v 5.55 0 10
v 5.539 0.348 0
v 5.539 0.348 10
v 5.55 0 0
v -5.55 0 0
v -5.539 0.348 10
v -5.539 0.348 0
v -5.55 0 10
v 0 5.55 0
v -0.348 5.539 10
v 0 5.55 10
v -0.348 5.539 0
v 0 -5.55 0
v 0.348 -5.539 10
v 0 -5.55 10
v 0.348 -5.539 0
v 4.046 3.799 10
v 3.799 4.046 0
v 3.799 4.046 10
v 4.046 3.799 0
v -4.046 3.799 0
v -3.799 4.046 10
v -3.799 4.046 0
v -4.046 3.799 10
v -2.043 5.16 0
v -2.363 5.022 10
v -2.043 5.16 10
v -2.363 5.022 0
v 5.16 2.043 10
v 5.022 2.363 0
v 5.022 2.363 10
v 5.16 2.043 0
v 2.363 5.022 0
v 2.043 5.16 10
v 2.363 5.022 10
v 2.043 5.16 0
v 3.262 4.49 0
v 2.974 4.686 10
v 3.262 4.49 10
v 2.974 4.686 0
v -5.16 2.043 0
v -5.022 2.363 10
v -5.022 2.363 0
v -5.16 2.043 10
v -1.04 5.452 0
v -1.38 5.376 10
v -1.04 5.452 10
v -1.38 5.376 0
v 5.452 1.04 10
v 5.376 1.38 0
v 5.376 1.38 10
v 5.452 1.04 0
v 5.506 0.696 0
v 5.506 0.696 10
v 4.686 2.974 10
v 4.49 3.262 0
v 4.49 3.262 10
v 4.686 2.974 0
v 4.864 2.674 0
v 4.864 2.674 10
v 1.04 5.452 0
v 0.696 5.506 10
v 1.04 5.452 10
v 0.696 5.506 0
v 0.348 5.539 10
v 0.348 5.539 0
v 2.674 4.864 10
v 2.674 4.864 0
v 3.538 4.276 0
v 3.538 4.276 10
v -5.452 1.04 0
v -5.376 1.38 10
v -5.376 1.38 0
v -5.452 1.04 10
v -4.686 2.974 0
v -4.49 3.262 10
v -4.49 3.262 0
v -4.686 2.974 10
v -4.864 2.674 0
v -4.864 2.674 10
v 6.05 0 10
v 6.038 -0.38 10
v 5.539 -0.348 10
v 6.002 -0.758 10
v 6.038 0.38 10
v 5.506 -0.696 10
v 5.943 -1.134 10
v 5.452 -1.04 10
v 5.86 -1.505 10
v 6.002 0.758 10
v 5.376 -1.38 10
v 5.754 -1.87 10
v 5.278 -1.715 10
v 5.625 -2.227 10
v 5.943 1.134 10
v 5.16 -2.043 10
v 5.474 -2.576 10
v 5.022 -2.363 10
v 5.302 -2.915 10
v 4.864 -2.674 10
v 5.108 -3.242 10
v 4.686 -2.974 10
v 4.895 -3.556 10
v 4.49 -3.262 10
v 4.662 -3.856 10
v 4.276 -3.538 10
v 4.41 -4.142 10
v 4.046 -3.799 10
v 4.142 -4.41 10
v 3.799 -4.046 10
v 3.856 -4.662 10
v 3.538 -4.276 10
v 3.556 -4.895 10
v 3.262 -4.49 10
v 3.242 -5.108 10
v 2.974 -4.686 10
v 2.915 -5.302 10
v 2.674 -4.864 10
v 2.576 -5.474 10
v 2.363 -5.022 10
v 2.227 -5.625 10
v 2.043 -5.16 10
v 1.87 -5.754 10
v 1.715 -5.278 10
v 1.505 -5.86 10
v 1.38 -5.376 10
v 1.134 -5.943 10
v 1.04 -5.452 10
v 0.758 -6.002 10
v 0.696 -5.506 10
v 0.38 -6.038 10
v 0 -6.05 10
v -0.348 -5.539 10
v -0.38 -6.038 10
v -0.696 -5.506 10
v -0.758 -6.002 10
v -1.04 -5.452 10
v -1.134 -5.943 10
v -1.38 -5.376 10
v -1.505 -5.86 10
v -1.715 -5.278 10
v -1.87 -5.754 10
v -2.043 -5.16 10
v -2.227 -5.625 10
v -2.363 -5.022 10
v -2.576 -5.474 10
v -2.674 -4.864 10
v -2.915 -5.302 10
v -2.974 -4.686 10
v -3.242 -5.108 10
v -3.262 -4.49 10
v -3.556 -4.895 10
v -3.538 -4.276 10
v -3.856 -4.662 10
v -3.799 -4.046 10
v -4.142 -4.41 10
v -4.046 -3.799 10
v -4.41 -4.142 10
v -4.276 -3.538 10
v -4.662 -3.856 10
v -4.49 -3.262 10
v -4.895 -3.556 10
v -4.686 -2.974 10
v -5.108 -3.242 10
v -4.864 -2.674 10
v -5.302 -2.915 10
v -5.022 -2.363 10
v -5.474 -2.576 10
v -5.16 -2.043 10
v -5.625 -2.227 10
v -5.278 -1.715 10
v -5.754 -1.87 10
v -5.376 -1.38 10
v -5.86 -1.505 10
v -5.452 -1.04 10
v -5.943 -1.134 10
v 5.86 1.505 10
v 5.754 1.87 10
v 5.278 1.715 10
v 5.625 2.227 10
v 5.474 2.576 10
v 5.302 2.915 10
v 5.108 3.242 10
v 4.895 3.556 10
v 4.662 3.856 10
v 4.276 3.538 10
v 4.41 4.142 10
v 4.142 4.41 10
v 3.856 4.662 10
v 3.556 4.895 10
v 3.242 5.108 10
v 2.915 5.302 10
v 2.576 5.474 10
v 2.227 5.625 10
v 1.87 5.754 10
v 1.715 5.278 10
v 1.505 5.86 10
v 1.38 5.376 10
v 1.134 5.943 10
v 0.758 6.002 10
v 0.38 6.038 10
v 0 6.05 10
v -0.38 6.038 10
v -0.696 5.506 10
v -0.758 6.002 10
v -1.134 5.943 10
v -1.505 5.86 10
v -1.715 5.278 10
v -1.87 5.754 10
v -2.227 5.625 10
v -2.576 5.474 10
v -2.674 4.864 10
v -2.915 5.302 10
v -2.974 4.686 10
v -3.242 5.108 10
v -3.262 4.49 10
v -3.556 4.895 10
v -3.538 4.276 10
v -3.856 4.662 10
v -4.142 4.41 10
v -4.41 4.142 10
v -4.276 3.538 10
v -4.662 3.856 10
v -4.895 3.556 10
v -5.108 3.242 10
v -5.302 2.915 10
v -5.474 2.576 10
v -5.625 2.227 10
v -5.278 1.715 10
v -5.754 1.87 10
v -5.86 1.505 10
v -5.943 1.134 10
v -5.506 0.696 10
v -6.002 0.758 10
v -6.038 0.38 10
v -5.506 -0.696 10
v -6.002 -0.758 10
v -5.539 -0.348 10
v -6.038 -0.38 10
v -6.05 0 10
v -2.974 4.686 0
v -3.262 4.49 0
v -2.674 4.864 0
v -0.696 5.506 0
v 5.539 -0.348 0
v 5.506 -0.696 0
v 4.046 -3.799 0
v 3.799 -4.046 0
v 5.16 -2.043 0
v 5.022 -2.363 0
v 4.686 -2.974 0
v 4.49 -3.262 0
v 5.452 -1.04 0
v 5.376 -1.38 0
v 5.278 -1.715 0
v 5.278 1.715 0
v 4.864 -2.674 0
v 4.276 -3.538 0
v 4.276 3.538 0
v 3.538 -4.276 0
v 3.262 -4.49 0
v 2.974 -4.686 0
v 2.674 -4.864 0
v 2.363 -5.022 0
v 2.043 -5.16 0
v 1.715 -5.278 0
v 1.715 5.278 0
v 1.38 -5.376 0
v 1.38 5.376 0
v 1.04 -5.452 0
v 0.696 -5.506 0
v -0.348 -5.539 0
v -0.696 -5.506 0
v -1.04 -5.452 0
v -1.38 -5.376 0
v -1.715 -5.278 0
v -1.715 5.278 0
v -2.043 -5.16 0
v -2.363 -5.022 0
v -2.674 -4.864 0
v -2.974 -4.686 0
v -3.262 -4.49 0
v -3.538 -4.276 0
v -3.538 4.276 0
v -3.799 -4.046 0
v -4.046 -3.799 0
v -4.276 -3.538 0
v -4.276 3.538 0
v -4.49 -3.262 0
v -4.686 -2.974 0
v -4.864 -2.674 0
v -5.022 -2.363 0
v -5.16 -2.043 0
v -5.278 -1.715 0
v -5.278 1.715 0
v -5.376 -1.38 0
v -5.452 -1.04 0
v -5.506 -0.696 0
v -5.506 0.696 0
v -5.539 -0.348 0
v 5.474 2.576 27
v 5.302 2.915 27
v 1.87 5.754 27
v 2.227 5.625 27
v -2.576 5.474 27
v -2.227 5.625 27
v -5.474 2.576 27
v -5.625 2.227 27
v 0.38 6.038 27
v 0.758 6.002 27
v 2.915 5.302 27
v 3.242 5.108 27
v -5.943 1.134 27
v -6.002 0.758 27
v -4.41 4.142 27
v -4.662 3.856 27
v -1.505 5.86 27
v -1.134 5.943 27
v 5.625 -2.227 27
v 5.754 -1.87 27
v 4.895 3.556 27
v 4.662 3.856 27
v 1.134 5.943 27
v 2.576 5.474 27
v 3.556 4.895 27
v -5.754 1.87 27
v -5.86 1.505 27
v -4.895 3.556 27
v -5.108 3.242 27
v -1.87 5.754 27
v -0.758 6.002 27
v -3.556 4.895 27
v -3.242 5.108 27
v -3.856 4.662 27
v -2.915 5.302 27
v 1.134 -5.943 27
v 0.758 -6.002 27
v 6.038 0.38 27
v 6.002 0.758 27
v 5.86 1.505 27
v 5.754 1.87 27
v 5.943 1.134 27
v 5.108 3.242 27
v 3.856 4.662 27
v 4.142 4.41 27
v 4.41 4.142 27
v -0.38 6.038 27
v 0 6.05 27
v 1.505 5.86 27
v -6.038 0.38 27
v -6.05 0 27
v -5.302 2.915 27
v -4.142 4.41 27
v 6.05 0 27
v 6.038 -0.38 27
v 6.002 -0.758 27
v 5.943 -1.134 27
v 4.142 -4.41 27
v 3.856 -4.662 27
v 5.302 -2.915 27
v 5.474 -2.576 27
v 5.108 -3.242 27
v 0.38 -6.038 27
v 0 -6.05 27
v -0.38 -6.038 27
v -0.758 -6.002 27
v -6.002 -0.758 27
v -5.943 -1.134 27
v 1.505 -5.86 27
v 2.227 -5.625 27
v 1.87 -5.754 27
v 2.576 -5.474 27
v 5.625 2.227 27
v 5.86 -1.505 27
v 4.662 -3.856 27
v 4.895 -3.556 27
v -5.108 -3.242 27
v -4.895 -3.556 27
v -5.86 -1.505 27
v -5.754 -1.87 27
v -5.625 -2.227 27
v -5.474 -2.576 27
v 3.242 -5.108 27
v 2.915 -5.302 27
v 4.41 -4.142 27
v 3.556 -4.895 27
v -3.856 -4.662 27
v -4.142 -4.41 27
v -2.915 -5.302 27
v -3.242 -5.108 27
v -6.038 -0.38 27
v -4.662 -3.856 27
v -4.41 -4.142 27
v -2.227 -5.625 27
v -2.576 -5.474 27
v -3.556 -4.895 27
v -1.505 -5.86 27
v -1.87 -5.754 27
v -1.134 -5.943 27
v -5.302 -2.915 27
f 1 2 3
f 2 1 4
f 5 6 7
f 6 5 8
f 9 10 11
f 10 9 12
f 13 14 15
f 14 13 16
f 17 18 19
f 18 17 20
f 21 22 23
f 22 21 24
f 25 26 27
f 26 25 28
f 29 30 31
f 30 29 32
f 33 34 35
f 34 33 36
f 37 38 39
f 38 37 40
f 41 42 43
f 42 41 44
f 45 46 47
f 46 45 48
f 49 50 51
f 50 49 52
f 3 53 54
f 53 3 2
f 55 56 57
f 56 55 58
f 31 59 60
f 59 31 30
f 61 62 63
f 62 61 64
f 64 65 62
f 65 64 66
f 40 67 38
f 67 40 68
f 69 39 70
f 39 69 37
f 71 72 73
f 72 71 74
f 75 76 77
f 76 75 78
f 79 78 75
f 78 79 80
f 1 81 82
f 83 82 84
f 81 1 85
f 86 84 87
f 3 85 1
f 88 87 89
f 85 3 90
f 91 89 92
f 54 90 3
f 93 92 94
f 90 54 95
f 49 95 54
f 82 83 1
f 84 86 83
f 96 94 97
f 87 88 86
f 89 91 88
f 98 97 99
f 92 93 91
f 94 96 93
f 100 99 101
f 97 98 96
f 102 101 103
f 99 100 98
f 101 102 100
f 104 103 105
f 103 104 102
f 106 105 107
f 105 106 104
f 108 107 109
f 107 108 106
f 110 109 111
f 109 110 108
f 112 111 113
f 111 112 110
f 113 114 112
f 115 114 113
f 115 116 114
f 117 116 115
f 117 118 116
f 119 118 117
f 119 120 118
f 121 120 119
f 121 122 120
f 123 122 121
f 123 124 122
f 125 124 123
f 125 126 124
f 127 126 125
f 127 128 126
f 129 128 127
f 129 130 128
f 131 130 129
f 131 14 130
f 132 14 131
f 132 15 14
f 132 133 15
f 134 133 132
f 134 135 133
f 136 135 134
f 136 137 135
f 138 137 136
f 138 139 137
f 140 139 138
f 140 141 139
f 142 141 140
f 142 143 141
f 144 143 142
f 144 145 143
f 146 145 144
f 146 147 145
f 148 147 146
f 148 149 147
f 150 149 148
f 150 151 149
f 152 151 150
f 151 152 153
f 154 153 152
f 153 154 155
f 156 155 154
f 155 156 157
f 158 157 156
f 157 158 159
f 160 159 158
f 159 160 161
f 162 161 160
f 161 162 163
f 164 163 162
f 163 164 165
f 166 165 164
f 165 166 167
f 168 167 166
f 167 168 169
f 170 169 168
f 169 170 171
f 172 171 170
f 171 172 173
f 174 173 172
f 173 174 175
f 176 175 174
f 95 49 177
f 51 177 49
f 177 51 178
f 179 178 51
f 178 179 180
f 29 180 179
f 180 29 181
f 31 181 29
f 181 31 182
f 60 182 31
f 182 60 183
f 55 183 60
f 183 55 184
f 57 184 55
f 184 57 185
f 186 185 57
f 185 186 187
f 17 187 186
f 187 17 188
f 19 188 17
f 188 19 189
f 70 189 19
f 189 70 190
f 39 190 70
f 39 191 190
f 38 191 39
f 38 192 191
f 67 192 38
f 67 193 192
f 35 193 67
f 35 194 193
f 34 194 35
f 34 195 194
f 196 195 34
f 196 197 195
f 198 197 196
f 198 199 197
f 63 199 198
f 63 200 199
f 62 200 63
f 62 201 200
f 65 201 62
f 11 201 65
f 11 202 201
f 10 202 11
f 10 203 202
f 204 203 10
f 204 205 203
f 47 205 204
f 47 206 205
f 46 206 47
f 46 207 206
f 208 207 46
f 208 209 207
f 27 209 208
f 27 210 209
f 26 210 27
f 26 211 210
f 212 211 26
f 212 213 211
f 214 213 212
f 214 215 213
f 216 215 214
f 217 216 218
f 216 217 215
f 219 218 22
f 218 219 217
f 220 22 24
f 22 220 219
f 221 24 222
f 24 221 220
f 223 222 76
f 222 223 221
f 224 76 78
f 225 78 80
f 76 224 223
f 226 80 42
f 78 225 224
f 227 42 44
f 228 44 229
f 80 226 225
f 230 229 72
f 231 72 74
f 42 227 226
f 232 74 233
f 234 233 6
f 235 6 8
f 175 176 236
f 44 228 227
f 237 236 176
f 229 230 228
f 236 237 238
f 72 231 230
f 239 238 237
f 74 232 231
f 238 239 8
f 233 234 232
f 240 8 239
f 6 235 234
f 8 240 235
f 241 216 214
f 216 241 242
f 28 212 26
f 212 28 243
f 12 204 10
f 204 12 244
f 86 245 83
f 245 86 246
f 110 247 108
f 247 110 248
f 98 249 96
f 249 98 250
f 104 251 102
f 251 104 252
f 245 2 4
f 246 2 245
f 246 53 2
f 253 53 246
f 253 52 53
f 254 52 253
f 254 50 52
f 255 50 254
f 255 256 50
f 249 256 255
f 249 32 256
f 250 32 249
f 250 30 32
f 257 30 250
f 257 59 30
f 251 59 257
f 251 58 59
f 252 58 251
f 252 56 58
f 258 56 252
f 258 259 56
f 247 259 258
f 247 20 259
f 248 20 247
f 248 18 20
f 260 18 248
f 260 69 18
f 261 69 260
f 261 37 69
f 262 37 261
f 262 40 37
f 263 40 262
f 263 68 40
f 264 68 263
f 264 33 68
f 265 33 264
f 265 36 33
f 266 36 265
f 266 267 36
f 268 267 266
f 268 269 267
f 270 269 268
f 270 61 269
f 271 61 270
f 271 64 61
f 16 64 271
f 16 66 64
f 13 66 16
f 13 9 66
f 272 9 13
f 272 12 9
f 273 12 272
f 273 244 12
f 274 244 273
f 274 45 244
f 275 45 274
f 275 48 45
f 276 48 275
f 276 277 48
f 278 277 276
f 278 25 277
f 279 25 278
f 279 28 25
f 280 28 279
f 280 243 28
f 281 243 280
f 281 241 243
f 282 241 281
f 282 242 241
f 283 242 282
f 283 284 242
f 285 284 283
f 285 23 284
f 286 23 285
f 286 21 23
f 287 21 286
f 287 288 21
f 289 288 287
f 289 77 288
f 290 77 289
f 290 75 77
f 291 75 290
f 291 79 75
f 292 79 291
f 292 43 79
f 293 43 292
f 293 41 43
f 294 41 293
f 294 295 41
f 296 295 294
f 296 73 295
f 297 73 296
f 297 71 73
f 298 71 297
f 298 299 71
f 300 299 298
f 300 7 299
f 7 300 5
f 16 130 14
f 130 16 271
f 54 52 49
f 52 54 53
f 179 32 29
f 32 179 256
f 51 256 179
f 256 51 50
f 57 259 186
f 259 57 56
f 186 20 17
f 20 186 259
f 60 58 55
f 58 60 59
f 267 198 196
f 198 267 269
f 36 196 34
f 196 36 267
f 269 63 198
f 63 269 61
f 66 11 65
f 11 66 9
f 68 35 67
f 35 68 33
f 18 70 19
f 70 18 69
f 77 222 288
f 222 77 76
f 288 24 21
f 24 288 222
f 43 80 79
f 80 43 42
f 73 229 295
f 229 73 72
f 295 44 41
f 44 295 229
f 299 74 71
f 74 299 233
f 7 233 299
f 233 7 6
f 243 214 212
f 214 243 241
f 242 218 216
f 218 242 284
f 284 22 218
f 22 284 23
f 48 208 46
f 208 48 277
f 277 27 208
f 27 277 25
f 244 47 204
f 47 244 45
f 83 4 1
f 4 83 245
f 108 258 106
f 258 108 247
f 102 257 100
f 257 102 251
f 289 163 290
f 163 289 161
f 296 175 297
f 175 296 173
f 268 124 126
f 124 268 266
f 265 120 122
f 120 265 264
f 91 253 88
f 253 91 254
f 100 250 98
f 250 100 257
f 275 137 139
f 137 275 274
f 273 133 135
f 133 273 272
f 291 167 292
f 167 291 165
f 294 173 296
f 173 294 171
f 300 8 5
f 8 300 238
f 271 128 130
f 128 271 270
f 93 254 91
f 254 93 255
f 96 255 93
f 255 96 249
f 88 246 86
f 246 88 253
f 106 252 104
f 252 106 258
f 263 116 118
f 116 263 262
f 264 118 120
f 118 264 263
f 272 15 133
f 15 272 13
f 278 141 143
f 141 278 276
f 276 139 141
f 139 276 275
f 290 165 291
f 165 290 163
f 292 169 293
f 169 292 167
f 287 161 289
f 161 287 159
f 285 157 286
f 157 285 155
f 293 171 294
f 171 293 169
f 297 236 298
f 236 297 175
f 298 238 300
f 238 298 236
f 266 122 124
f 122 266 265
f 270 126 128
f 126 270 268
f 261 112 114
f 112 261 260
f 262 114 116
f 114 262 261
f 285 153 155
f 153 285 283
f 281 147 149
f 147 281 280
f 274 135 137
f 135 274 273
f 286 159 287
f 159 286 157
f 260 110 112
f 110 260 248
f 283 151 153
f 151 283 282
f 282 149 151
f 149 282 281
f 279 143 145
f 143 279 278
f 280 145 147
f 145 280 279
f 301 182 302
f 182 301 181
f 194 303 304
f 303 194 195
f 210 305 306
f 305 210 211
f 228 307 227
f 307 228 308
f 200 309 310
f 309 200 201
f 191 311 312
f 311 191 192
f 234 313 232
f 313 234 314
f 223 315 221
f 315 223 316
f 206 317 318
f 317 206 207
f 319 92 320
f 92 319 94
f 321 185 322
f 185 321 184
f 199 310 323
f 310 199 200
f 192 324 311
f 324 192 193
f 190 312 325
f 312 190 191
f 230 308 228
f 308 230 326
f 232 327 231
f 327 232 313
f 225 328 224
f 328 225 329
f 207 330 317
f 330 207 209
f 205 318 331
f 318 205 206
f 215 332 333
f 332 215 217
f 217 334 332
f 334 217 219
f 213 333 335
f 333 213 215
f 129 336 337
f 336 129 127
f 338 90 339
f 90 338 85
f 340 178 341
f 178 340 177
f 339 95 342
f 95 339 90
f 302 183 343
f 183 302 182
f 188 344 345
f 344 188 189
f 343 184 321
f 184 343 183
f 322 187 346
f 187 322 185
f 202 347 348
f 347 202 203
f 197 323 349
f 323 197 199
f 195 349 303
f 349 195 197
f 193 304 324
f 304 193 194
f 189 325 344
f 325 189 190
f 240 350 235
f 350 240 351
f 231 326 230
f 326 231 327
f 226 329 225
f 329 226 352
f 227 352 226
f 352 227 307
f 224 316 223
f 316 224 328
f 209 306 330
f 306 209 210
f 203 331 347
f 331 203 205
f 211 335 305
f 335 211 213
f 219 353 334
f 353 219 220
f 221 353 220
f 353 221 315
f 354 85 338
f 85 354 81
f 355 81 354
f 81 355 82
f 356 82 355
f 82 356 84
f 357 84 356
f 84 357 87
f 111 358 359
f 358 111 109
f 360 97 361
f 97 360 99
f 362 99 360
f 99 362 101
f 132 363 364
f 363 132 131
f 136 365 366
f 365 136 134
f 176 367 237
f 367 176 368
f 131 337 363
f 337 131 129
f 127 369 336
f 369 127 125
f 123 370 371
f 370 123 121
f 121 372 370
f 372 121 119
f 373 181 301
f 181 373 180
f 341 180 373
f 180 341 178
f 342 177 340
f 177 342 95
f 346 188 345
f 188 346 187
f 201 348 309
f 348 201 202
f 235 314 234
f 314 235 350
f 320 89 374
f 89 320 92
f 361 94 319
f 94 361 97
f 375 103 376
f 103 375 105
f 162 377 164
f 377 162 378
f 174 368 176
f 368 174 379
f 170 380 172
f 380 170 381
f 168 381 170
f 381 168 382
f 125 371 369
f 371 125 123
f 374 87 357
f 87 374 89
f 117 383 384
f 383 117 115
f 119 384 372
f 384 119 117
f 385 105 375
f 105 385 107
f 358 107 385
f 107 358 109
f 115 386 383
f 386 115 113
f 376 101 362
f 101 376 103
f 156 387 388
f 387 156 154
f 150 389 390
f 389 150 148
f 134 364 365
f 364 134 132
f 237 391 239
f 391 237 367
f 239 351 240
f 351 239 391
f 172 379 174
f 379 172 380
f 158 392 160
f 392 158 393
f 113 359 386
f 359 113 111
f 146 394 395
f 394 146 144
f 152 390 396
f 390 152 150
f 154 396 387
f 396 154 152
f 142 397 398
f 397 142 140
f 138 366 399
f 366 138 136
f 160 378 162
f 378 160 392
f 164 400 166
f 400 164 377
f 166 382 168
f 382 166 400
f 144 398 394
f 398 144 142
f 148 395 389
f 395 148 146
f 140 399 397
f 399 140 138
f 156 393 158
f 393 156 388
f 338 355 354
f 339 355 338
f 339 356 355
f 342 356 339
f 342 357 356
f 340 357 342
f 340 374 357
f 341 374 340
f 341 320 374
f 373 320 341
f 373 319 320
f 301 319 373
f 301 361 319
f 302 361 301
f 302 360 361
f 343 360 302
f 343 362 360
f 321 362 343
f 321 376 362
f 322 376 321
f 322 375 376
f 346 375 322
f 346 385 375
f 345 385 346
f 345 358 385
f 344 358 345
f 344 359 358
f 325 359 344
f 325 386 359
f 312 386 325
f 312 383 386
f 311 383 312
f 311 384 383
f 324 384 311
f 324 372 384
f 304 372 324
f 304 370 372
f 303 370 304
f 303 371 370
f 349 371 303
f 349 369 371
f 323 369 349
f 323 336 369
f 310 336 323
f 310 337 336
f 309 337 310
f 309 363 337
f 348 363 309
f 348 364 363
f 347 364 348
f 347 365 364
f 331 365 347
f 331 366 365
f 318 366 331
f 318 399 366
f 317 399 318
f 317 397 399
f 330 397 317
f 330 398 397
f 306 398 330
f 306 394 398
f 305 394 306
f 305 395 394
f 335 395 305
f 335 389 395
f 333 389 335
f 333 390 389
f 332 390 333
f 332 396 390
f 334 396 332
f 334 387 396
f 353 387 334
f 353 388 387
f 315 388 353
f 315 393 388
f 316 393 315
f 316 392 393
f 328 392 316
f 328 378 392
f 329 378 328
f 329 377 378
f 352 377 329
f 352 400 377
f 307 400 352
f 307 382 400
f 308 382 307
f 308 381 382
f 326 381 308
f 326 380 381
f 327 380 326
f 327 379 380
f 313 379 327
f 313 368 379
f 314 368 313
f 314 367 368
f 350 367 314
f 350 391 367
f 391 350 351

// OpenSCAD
//--------------------------------------------------------------
// Name: Удлиняющая втулка для вешалки
// Version: 1.5
// Purpose: 
// Author: Evgeny Klepikov
// E-mail: klek07@ya.ru
//
// Created: 29.10.2017
// Updated: 29.10.2017
// Copyright: (c) 2017 WildFox24
// Licence: GPL v3
//--------------------------------------------------------------
$fn=100;
translate([0,0,0])
cylinder(h=10, d=11.1, center=false);
translate([0,0,10])
cylinder(h=4, d=12.1, center=false);
translate([0,0,14])
cylinder(h=13, d=12.1, center=false);
